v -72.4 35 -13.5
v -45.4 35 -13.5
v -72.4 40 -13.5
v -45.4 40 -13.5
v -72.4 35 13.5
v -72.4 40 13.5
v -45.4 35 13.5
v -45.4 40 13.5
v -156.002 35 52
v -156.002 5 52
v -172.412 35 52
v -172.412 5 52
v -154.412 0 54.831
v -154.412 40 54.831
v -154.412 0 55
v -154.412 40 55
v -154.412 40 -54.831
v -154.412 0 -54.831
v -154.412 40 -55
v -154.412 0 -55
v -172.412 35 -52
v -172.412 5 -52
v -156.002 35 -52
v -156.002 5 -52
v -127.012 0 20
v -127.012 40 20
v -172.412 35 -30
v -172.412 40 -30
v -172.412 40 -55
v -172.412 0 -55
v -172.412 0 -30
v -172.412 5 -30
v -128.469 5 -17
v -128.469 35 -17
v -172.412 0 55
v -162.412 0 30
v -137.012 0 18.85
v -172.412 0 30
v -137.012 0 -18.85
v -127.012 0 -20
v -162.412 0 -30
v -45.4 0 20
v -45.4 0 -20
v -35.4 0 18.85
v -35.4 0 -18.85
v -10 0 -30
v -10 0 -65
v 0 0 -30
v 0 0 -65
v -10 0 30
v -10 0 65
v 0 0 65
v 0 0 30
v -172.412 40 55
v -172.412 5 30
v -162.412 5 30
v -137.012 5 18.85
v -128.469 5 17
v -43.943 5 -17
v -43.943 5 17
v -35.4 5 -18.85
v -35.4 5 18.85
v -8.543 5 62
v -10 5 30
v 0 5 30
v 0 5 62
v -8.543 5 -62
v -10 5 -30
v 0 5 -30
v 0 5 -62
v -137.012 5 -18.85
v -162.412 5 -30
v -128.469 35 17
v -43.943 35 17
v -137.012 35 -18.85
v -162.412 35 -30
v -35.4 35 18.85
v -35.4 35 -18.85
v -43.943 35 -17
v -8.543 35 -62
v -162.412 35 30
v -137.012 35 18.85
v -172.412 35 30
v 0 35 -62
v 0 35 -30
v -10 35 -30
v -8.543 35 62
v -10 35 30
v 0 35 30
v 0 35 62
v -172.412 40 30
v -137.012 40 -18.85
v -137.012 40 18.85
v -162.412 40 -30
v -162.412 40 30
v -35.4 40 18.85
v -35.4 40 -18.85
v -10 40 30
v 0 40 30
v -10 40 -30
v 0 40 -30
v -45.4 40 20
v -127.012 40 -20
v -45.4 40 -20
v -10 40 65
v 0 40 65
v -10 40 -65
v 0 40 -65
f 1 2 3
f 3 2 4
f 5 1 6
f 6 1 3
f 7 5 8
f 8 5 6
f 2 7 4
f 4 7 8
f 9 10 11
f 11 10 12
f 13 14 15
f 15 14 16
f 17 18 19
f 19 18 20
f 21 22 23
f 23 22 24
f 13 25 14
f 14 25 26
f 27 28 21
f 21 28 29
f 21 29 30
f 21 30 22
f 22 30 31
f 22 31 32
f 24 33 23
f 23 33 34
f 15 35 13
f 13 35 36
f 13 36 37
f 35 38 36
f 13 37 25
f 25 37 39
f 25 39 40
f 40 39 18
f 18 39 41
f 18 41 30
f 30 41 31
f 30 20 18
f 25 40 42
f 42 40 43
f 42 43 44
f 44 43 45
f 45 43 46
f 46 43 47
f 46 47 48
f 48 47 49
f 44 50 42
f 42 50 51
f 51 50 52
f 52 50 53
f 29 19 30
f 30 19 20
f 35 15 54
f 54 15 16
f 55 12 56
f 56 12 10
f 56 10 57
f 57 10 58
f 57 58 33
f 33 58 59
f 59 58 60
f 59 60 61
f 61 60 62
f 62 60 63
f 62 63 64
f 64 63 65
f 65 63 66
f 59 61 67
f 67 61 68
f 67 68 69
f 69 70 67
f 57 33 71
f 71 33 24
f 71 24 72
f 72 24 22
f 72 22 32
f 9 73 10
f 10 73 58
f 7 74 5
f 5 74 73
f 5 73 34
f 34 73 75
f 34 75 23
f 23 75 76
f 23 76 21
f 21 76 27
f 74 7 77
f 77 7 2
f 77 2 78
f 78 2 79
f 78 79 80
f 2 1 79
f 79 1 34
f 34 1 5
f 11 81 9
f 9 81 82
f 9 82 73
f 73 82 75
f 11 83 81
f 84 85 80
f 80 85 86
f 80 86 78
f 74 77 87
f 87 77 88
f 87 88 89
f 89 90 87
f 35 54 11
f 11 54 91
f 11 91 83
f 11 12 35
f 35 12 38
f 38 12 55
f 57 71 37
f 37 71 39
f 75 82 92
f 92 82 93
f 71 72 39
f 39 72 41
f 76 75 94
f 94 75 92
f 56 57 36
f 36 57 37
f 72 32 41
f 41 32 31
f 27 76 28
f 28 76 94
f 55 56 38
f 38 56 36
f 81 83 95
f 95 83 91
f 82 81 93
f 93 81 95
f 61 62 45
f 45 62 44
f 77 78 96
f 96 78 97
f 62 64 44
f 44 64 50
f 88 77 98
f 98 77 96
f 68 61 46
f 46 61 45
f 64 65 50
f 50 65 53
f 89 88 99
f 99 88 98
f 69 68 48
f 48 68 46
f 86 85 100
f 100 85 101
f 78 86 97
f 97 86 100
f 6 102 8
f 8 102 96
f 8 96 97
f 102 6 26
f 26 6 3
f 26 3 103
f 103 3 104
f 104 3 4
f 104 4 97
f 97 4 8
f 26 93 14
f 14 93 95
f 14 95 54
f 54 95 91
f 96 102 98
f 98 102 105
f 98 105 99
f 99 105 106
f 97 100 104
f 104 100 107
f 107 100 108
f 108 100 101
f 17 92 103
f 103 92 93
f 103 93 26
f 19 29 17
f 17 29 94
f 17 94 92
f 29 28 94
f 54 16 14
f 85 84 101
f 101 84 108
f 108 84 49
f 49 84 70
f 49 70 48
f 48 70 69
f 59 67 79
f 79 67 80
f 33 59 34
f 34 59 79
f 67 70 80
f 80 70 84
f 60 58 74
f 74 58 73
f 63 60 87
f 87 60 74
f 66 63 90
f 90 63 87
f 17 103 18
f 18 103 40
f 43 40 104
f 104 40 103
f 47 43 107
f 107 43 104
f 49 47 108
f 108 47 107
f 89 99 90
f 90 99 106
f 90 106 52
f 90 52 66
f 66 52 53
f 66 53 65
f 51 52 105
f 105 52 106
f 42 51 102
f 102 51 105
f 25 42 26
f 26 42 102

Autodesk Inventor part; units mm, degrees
ref_plane "YZ Plane" through (0, 0, 0) normal (1, 0, 0) x (0, 1, 0)
ref_plane "XZ Plane" through (0, 0, 0) normal (0, 1, 0) x (-1, 0, 0)
ref_plane "XY Plane" through (0, 0, 0) normal (0, 0, 1) x (1, 0, 0)
sketch "Sketch1" plane through (0, 0, 0) normal (0, 1, 0) x (-1, 0, 0)
  line L0 (172.412, 0) -> (172.412, -65)
  line L1 (172.412, 0) -> (172.412, 65)
  line L2 (172.412, 65) -> (162.412, 65)
  line L3 (162.412, 65) -> (127.012, 20)
  line L4 (172.412, -65) -> (162.412, -65)
  line L5 (162.412, -65) -> (127.012, -20)
  line L6 (127.012, -20) -> (86.206, -20)
  line L7 (127.012, 20) -> (86.206, 20)
  line L8 (0, 0) -> (0, -65)
  line L9 (0, 0) -> (0, 65)
  line L10 (0, 65) -> (10, 65)
  line L11 (10, 65) -> (45.4, 20)
  line L12 (0, -65) -> (10, -65)
  line L13 (10, -65) -> (45.4, -20)
  line L14 (45.4, -20) -> (86.206, -20)
  line L15 (45.4, 20) -> (86.206, 20)
  dimension "d0" = 172.412
  dimension "d1" = 65
  dimension "d2" = 65
  dimension "d7" = 10
extrude "Extrusion1" add sketch "Sketch1" along normal blind 5
sketch "Sketch2" plane through (0, 5, 0) normal (0, 1, 0) x (1, 0, 0)
  line L0 (-162.412, -65) -> (-127.012, -20) projected
  line L1 (-127.012, -20) -> (-162.412, -65)
  line L2 (-162.412, -65) -> (-172.412, -65)
  line L3 (-127.012, 20) -> (-162.412, 65) projected
  line L4 (-172.412, 65) -> (-162.412, 65)
  line L5 (-162.412, 65) -> (-127.012, 20)
  line L6 (-127.012, 20) -> (-45.4, 20)
  line L7 (-10, 65) -> (-45.4, 20) projected
  line L8 (-45.4, 20) -> (-10, 65)
  line L9 (-10, 65) -> (0, 65)
  line L10 (0, -65) -> (0, 65) projected
  line L11 (-45.4, -20) -> (-10, -65) projected
  line L12 (0, -65) -> (-10, -65)
  line L13 (-10, -65) -> (-45.4, -20)
  line L14 (-45.4, -20) -> (-127.012, -20)
  line L15 (-128.469, -17) -> (-163.869, -62)
  line L16 (-163.869, -62) -> (-169.412, -62)
  line L17 (-169.412, 62) -> (-163.869, 62)
  line L18 (-163.869, 62) -> (-128.469, 17)
  line L19 (-128.469, 17) -> (-43.943, 17)
  line L20 (-43.943, 17) -> (-8.543, 62)
  line L21 (-8.543, 62) -> (-3, 62)
  line L22 (-3, -62) -> (-8.543, -62)
  line L23 (-8.543, -62) -> (-43.943, -17)
  line L24 (-43.943, -17) -> (-128.469, -17)
  line L25 (-3, -62) -> (0, -62)
  line L26 (0, -65) -> (0, -62)
  line L27 (-3, 62) -> (0, 62)
  line L28 (0, 65) -> (0, 62)
  line L29 (-169.412, -62) -> (-172.412, -62)
  line L30 (-172.412, -65) -> (-172.412, -62)
  line L31 (-169.412, 62) -> (-172.412, 62)
  line L32 (-172.412, 62) -> (-172.412, 65)
  point P0 (0, 0)
  dimension "d10" = 3
extrude "Extrusion2" add sketch "Sketch2" along normal blind 30
sketch "Sketch3" plane through (0, 35, 0) normal (0, 1, 0) x (1, 0, 0)
  line L0 (-172.412, 65) -> (-172.412, -65) projected
  line L1 (-172.412, -65) -> (-172.412, 65)
  line L2 (-162.412, 65) -> (-172.412, 65) projected
  line L3 (-172.412, 65) -> (-162.412, 65)
  line L4 (-45.4, 20) -> (-127.012, 20) projected
  line L5 (-162.412, 65) -> (-127.012, 20)
  line L6 (-127.012, 20) -> (-45.4, 20)
  line L7 (-45.4, 20) -> (-10, 65)
  line L8 (0, 65) -> (-10, 65) projected
  line L9 (-10, 65) -> (0, 65)
  line L10 (-10, -65) -> (0, -65) projected
  line L11 (0, 65) -> (0, -65)
  line L12 (0, -65) -> (-10, -65)
  line L13 (-127.012, -20) -> (-45.4, -20) projected
  line L14 (-10, -65) -> (-45.4, -20)
  line L15 (-45.4, -20) -> (-127.012, -20)
  line L16 (-162.412, -65) -> (-127.012, -20) projected
  line L17 (-127.012, -20) -> (-162.412, -65)
  line L18 (-172.412, -65) -> (-162.412, -65) projected
  line L19 (-162.412, -65) -> (-172.412, -65)
  point P0 (0, 0)
extrude "Extrusion3" add sketch "Sketch3" along normal blind 5
sketch "Sketch4" plane through (0, 40, 0) normal (0, 1, 0) x (1, 0, 0)
  line L0 (0, 0) -> (0, -30)
  line L1 (0, -62) -> (0, 62) projected
  line L2 (0, 0) -> (0, 30)
  line L3 (0, 30) -> (-10, 30)
  line L4 (-35.4, 0) -> (-35.4, 18.85)
  line L5 (-35.4, 18.85) -> (-10, 30)
  line L6 (-35.4, 0) -> (-35.4, -18.85)
  line L7 (-35.4, -18.85) -> (-10, -30)
  line L8 (-10, -30) -> (0, -30)
  line L9 (-127.012, -20) -> (-45.4, -20) projected
  line L10 (-45.4, 20) -> (-127.012, 20) projected
  line L11 (-172.412, 0) -> (-172.412, -30)
  line L12 (-172.412, 0) -> (-172.412, 30)
  line L13 (-172.412, 30) -> (-162.412, 30)
  line L14 (-137.012, 0) -> (-137.012, 18.85)
  line L15 (-137.012, 18.85) -> (-162.412, 30)
  line L16 (-137.012, 0) -> (-137.012, -18.85)
  line L17 (-137.012, -18.85) -> (-162.412, -30)
  line L18 (-162.412, -30) -> (-172.412, -30)
  dimension "d15" = 30
  dimension "d16" = 30
  dimension "d17" = 10
  dimension "d18" = 35.4
  dimension "d19" = 18.85
  dimension "d20" = 18.85
extrude "Extrusion4" cut sketch "Sketch4" against normal through all
sketch "Sketch5" plane through (0, 40, 0) normal (0, 1, 0) x (1, 0, 0)
  line L0 (-172.412, -65) -> (-162.412, -65) projected
  line L1 (-172.412, -65) -> (-172.412, -55)
  line L2 (-172.412, -30) -> (-172.412, -65) projected
  line L3 (-162.412, 65) -> (-172.412, 65) projected
  line L4 (-172.412, 65) -> (-172.412, 55)
  line L5 (-172.412, 65) -> (-172.412, 30) projected
  line L6 (-172.412, 55) -> (-154.5453, 55)
  line L7 (-127.012, 20) -> (-162.412, 65) projected
  line L8 (-172.412, -55) -> (-154.5453, -55)
  line L9 (-162.412, -65) -> (-127.012, -20) projected
  point P0 (0, 0)
  dimension "d23" = 10
  dimension "d24" = 10
extrude "Extrusion5" cut sketch "Sketch5" against normal through all
sketch "Sketch6" plane through (-172.412, 35, 30) normal (-1, 0, 0) x (0, 0, 1)
  line L0 (-85, 5) -> (-60, 5) projected
  line L1 (-50, -35) -> (-85, -35) projected
  line L2 (-85, 5) -> (-82, 5)
  line L3 (-82, 5) -> (-82, -35)
  line L4 (-82, -35) -> (-85, -35)
  line L5 (-85, -35) -> (-85, 5)
  line L6 (25, -35) -> (-10, -35) projected
  line L7 (25, 5) -> (22, 5)
  line L8 (22, 5) -> (22, -35)
  line L9 (22, -35) -> (25, -35)
  line L10 (25, -35) -> (25, 5)
  point P0 (-30, -35)
  dimension "d27" = 3
  dimension "d28" = 3
extrude "Extrusion6" add sketch "Sketch6" against normal blind 18
sketch "Sketch7" plane through (0, 40, 0) normal (0, 1, 0) x (1, 0, 0)
  line L0 (-35.4, 18.85) -> (-35.4, -18.85) projected
  line L1 (-45.4, 13.5) -> (-72.4, 13.5)
  line L2 (-72.4, 13.5) -> (-72.4, -13.5)
  line L3 (-72.4, -13.5) -> (-45.4, -13.5)
  line L4 (-45.4, -13.5) -> (-45.4, 13.5)
  point P0 (0, 0)
  dimension "d33" = 27
  dimension "d34" = 27
extrude "Extrusion7" cut sketch "Sketch7" against normal blind 18
properties part number "Metal_Shroud"
